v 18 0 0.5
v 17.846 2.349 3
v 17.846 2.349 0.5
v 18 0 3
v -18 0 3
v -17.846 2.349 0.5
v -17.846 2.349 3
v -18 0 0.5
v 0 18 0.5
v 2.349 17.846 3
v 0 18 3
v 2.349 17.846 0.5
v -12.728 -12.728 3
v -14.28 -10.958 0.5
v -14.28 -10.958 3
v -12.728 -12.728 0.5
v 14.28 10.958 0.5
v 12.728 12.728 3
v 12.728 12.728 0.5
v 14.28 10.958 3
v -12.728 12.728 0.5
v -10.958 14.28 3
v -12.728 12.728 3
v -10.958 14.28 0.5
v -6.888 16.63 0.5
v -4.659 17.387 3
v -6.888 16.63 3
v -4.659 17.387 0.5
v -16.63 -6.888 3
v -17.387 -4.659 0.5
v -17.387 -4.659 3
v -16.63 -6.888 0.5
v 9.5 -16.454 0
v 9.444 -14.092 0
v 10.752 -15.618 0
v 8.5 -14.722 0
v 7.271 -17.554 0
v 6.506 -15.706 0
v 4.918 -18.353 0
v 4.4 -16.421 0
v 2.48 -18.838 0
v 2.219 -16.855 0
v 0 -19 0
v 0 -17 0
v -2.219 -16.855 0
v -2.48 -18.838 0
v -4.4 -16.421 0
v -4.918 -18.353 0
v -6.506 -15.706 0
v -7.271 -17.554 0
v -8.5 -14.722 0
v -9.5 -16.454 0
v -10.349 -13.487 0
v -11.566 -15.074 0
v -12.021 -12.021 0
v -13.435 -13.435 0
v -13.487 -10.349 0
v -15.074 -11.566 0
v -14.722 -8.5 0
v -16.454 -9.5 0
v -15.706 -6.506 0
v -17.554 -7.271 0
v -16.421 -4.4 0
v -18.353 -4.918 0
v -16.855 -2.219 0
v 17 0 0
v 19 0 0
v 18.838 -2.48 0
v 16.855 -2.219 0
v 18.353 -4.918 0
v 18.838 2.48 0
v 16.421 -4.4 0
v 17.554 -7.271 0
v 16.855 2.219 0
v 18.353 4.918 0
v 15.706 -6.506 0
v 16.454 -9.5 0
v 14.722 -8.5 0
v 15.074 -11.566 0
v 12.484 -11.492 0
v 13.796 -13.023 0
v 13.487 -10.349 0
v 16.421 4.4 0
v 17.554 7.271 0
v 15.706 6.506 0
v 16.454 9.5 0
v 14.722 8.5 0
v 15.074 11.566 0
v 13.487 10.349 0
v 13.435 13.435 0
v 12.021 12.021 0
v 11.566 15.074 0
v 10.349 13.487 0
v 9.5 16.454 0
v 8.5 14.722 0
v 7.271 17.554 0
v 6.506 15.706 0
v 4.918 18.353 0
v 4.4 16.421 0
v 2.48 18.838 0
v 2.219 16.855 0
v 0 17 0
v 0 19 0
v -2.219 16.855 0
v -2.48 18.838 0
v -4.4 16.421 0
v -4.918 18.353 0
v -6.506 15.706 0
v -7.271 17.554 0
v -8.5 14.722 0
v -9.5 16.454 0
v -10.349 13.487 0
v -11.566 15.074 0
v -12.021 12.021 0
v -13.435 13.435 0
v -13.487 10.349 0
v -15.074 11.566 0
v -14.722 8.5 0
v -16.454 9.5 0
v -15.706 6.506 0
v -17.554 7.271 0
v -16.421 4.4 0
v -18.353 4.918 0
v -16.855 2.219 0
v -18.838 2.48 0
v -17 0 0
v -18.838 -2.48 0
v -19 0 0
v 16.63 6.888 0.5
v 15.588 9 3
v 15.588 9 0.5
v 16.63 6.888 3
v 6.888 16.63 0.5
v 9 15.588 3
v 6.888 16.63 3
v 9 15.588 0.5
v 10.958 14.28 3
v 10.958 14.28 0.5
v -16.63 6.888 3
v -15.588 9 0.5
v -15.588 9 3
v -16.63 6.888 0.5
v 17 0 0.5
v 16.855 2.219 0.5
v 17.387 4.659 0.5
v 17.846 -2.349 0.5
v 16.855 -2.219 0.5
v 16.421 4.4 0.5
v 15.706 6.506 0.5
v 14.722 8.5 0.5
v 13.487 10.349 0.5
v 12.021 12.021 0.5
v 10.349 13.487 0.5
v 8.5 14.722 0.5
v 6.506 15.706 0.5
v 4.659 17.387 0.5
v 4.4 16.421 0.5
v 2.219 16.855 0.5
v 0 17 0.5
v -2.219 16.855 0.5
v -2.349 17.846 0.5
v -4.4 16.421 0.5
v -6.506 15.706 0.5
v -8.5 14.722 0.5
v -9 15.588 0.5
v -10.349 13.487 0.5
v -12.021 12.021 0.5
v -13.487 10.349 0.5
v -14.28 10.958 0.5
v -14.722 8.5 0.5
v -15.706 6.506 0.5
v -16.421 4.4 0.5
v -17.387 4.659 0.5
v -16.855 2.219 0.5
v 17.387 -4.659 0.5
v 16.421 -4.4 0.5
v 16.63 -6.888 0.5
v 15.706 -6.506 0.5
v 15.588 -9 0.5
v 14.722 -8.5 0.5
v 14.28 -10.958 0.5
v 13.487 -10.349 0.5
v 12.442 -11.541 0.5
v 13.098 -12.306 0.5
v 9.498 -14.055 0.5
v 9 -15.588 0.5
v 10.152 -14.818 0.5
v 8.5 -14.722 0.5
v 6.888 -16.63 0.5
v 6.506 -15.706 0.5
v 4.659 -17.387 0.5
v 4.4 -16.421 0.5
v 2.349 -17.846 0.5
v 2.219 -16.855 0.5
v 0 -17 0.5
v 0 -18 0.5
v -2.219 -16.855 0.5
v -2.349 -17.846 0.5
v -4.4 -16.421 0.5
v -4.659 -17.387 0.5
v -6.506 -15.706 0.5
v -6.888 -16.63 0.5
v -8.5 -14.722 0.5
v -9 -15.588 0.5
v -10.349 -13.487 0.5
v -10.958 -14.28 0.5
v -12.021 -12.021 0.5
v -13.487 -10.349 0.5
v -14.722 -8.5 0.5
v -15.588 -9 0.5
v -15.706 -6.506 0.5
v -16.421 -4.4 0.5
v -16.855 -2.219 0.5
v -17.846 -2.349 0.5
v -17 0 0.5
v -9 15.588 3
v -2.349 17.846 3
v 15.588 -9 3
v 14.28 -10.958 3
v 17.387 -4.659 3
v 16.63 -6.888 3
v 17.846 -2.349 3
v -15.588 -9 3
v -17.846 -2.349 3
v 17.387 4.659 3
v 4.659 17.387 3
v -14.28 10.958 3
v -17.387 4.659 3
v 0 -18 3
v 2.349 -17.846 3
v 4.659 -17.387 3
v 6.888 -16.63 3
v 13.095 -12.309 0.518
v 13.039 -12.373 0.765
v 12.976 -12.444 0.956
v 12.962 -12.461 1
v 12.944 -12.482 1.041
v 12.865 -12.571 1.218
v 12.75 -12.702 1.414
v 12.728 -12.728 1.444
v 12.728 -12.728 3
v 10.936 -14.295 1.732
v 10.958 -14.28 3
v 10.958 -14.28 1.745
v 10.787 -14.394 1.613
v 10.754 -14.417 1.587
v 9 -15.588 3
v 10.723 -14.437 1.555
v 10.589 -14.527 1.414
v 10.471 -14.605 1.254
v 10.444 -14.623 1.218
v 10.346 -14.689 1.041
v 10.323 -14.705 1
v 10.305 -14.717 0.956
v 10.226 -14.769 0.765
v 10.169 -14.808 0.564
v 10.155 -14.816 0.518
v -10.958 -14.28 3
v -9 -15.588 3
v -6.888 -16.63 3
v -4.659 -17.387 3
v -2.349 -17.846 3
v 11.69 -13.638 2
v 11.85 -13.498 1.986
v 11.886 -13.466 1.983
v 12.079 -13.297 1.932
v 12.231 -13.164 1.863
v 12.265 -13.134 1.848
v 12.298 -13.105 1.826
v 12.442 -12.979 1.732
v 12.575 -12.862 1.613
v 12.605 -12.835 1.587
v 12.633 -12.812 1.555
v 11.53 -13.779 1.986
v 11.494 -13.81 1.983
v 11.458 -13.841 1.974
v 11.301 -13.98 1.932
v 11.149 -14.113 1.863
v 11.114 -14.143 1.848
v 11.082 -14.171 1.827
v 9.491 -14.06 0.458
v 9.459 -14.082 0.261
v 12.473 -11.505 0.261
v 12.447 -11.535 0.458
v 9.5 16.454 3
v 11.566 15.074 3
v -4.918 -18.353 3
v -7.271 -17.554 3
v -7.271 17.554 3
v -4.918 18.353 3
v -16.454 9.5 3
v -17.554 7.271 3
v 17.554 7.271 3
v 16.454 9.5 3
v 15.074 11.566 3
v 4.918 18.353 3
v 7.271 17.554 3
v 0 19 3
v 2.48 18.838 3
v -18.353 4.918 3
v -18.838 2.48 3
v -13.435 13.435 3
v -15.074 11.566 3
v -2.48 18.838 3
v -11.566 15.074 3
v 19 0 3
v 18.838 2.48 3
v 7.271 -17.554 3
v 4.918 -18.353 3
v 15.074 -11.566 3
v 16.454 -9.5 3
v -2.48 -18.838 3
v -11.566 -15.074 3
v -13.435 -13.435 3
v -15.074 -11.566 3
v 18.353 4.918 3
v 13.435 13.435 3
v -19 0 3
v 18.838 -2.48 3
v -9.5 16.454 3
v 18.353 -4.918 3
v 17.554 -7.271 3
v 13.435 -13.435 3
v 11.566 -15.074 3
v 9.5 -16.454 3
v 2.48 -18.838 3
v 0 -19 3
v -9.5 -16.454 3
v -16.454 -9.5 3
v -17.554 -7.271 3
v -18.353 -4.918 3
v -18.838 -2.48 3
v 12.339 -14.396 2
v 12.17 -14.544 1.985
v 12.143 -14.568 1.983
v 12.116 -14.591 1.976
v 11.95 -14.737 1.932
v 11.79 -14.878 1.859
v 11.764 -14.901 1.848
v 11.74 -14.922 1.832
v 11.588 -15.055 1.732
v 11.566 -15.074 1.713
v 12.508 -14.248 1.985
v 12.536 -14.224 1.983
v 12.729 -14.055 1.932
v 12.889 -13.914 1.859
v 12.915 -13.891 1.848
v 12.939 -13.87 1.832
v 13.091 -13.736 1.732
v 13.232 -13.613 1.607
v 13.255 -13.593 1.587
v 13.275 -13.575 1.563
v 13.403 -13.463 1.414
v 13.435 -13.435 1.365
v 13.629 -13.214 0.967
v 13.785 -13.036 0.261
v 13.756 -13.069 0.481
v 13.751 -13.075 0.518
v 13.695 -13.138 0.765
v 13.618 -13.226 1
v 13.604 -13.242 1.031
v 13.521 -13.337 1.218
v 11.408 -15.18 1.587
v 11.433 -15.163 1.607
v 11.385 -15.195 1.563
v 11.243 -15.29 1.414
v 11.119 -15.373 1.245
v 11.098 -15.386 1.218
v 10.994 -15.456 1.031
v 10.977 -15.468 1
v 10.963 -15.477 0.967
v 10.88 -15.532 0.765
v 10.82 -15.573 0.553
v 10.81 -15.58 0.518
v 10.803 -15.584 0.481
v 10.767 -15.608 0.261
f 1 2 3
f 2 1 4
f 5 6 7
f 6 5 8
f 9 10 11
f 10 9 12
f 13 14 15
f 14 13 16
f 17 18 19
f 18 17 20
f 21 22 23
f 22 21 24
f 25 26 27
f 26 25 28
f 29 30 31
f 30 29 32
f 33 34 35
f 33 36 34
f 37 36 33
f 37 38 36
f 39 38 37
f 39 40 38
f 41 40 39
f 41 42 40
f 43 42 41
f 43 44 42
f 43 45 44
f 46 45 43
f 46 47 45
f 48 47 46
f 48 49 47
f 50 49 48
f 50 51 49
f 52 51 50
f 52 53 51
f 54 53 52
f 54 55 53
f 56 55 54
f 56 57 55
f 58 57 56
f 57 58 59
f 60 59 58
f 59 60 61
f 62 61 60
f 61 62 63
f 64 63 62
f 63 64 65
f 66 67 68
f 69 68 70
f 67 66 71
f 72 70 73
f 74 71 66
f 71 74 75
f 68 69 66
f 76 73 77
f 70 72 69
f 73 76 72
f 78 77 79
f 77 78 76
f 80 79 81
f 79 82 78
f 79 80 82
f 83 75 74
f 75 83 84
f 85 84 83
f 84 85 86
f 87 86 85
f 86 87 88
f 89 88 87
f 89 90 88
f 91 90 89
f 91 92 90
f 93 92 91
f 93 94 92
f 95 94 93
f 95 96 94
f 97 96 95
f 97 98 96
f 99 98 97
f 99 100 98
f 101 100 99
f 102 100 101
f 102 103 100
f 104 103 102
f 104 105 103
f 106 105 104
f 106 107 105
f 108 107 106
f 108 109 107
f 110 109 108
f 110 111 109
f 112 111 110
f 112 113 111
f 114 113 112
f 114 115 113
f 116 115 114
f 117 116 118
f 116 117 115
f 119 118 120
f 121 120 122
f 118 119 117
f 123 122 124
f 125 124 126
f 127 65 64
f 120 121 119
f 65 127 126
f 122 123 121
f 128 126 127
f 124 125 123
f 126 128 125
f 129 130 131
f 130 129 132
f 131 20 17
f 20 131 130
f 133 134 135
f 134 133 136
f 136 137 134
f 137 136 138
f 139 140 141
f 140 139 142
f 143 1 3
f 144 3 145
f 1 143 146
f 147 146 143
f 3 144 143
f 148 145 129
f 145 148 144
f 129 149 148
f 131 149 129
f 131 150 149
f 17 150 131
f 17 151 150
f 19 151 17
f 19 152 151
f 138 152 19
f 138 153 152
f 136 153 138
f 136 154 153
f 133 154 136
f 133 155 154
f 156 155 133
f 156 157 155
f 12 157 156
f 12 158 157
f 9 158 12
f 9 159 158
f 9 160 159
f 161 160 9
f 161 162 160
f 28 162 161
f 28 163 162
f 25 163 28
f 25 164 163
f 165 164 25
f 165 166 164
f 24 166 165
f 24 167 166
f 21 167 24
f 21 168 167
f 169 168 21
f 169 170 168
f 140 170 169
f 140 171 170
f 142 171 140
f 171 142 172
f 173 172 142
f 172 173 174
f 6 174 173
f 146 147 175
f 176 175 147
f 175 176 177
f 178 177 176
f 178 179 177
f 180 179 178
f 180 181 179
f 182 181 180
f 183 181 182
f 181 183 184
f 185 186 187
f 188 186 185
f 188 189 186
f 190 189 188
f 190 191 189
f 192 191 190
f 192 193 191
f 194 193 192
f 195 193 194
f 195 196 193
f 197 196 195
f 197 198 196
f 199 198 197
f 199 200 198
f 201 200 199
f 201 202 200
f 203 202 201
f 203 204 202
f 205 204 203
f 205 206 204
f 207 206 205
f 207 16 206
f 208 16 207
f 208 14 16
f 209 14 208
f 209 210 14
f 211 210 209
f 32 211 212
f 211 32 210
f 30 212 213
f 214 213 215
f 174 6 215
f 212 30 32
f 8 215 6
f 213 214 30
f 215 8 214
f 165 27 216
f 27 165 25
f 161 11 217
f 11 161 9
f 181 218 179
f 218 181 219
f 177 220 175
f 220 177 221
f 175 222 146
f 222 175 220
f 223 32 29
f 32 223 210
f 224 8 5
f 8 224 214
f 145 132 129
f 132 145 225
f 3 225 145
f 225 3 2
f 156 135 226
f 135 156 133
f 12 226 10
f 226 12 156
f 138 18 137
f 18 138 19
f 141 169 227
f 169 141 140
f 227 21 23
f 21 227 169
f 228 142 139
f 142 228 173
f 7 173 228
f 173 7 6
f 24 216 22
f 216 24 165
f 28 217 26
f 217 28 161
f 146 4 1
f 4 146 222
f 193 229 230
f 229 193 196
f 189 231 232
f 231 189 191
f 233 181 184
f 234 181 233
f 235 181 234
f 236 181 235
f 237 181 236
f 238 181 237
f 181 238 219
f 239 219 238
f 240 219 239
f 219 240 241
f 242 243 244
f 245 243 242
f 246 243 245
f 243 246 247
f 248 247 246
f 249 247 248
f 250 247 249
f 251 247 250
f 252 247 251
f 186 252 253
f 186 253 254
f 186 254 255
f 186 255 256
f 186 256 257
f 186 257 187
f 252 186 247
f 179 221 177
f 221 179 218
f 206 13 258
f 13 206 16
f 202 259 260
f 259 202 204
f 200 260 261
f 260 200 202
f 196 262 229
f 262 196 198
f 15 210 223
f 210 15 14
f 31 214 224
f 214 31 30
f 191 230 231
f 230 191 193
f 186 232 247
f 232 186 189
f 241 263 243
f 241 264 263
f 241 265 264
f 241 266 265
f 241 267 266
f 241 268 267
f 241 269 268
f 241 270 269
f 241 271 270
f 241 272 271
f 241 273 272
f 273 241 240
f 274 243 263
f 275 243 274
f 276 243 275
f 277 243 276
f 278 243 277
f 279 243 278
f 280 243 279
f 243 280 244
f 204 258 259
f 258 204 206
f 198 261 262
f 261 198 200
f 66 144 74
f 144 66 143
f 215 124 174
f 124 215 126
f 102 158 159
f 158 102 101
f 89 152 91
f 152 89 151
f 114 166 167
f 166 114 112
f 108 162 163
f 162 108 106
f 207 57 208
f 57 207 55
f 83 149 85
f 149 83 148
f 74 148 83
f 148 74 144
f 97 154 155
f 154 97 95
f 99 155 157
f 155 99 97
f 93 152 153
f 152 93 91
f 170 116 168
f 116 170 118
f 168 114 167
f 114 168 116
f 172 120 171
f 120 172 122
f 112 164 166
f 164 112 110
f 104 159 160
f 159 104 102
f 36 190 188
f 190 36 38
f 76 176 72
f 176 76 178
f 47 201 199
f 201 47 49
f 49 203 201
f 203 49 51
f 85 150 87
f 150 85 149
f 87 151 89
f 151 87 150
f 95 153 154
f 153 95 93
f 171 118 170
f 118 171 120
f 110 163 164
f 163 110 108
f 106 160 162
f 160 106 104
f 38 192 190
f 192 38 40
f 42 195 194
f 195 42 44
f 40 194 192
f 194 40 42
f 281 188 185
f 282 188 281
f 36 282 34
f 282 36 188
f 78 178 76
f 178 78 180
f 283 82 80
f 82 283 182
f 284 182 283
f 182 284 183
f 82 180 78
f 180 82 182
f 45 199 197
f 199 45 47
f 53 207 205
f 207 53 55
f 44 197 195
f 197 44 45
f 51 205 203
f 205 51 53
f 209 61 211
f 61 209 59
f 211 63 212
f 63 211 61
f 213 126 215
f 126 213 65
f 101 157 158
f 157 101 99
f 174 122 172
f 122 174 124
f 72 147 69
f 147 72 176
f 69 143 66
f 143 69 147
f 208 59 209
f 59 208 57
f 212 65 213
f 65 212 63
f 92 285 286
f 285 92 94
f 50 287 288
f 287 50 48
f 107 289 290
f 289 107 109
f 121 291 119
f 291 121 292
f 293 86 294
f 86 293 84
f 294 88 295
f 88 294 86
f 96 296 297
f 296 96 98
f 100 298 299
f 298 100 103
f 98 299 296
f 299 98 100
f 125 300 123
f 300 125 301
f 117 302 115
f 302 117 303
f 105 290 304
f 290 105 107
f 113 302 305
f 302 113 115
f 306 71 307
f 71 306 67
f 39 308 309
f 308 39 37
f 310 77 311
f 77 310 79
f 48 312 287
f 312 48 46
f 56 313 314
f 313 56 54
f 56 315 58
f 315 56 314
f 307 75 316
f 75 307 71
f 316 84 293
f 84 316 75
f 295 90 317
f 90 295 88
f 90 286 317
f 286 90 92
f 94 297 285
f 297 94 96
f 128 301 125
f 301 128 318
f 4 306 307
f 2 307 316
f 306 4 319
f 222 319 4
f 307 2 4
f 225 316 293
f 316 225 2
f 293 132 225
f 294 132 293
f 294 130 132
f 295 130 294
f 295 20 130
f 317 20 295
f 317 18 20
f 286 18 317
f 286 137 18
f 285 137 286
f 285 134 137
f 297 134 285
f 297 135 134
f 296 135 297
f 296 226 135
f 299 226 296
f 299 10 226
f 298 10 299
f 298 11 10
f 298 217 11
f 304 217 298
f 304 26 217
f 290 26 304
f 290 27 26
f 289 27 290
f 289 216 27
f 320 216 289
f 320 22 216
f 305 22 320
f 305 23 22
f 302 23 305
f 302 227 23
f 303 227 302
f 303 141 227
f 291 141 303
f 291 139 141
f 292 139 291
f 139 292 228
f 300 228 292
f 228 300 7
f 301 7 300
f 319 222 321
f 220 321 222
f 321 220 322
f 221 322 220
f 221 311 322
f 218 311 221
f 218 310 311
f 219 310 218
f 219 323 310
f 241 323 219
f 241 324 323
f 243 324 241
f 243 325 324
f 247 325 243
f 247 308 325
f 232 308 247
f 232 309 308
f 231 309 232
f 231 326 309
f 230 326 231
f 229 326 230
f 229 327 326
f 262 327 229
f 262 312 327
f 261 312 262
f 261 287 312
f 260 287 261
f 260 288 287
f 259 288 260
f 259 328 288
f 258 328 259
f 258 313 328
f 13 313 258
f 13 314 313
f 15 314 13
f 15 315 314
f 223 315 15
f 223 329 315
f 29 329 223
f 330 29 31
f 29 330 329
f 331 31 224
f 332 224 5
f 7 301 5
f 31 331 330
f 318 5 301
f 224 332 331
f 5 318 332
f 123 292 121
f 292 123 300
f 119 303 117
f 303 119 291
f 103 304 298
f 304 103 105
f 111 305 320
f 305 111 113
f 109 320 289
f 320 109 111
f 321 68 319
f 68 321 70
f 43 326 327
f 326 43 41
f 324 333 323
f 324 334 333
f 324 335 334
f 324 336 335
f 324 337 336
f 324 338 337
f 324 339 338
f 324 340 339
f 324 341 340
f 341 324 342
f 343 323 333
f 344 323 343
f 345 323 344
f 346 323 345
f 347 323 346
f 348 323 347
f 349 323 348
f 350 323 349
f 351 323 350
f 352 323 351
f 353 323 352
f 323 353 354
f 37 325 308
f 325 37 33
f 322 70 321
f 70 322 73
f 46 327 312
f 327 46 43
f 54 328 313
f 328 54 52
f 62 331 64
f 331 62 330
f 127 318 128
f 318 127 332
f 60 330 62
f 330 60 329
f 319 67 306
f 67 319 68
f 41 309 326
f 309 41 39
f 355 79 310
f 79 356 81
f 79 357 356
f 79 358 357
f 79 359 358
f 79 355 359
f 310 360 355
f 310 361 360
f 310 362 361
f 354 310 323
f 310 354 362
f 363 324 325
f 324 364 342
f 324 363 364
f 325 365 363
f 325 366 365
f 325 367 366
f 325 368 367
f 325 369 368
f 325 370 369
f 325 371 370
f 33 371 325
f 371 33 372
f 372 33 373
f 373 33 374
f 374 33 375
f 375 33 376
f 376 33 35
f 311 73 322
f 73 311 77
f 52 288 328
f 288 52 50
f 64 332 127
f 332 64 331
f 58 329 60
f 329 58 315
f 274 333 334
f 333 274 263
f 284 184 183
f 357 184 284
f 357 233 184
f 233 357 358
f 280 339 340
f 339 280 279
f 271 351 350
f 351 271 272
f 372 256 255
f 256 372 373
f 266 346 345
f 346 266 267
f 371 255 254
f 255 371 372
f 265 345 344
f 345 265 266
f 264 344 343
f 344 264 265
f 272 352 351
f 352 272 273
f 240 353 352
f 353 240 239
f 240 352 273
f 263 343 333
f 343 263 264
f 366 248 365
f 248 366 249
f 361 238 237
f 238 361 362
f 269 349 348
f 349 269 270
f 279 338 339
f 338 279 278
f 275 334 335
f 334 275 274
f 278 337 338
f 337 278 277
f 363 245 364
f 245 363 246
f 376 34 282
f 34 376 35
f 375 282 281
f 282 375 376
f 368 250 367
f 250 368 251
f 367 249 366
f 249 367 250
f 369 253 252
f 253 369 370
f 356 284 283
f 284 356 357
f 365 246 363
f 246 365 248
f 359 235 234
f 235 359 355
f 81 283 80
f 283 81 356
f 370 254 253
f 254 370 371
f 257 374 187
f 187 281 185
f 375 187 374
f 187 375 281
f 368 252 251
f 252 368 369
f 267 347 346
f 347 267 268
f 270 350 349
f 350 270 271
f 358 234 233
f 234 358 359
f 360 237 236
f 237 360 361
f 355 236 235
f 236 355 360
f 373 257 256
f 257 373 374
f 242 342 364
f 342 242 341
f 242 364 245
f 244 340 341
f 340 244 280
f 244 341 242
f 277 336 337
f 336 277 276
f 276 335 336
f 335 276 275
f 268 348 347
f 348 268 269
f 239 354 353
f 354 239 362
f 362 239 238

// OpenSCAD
// file: ../build_environments.scad
// build_environments.scad: modules to build level sections
//

module pool(diameter=10.0, wall_height=2.0, step_width=3.0, connections=[])
{
    difference() {
        union() {
        difference() {
            cylinder(h=0.5,r1=diameter+step_width,r2=diameter+step_width,$fn=48);
            translate([0,0,-0.1])
                cylinder(h=0.7,r1=diameter,r2=diameter,$fn=48);
        }
        difference() {
            cylinder(h=wall_height,r1=diameter+step_width+1.0,r2=diameter+step_width+1.0,$fn=48);
            translate([0,0,-0.1])
                cylinder(h=wall_height+0.2,r1=diameter+step_width,r2=diameter+step_width,$fn=48);
        }
        }
    
        for (c = connections)
        {
            rotate([0,90,0]) {
                angle = atan2(c[1],c[0]);
                rotate([-angle,0,0]) {
                    cylinder(h=diameter+5.0,r1=c[2],r2=c[2],$fn=48);
                }
            }
        }
    }
}

module straight(length=10.0, width=2.0, dy1=0.0, dy2=0.0, dz=0.0)
{
    dims = [0, 0, 0, 0, 0, (dz/length)];
    matrix = [
        [ 1, dims[0], dims[1], 0 ],
        [ dims[2], 1, dims[4], 0 ],
        [ dims[5], dims[3], 1, 0 ],
        [ 0, 0, 0, 1 ]
    ];
    multmatrix(matrix)
    difference() {
        translate([dy1,0,0])
        union() {
            rotate([0,90,0]) {
                difference() {
                    cylinder(h=(length-dy1-dy2),r1=width+1.0,r2=width+1.0,$fn=24);
                    translate([0,0,-0.1])
                        cylinder(h=(length-dy1-dy2+0.2),r1=width,r2=width,$fn=24);
                }
                difference() {
                    cylinder(h=1.0,r1=width+2.0,r2=width+2.0,$fn=24);
                    translate([0,0,-0.1])
                        cylinder(h=1.2,r1=width,r2=width,$fn=24);
                }
                translate([0,0,(length-dy1-dy2)-1.0]) {
                    difference() {
                        cylinder(h=1.0,r1=width+2.0,r2=width+2.0,$fn=24);
                        translate([0,0,-0.1])
                            cylinder(h=1.2,r1=width,r2=width,$fn=24);
                    }
                }
            }
        }
        translate([0,0,-(2*width+4.0)/2])
            cube([3*length,3*length,2*width+4.0],center=true);
    }
}

module curve(p0=[0,0], center=[0,0], dir=1, angle=0.0, width=2.0)
{
    radius = sqrt((p0[0]-center[0])*(p0[0]-center[0]) + (p0[1]-center[1])*(p0[1]-center[1]));
    if (dir == 0) {
        difference() {
            rotate([0,0,-90])
            difference() {
                rotate_extrude(angle = angle, convexity = 10, $fn=32)
                    translate([radius, 0, 0])
                        circle(r = width+1.0,$fn=24);
                rotate([0,0,-1.0])
                    rotate_extrude(angle = angle+2.0, convexity = 10, $fn=32)
                        translate([radius, 0, 0])
                            circle(r = width,$fn=24);
            }
            translate([0,0,-(2*width+4.0)/2])
                cube([5*radius,5*radius,2*width+4.0],center=true);
        }
    }
    else {
        difference() {
            rotate([0,0,90])
            difference() {
                rotate_extrude(angle = -angle, convexity = 10, $fn=32)
                    translate([radius, 0, 0])
                        circle(r = width+1.0,$fn=24);
                rotate([0,0,1.0])
                    rotate_extrude(angle = -angle-2.0, convexity = 10, $fn=32)
                        translate([radius, 0, 0])
                            circle(r = width,$fn=24);
            }
            translate([0,0,-(2*width+4.0)/2])
                cube([5*radius,5*radius,2*width+4.0],center=true);
        }
    }

}

// test pool
//pool(diameter=12.0000, wall_height=3.0000, step_width=3.0000, connections=[[0.0000,-26.0000,2.0000], [23.6074,0.0000,2.0000]]);

// test straight, slope
//straight(length=26.0000, width=2.0000, dy1=11.8322, dy2=6.7082, dz=0.0000);
//straight(length=29.1549, width=12.0000, dy1=0.0000, dy2=0.0000, dz=-15.0000);

// test curve
//curve(p0=[23.6074, 0.0000], center=[23.6074, 5.0000], dir=0, angle=60.1011, width=2.0000);
//curve(p0=[33.6426, 12.4219], center=[37.9771, 9.9295], dir=1, angle=120.4627, width=2.0000);
// main file
use <../build_environments.scad>;
pool(diameter=17.0000, wall_height=3.0000, step_width=1.0000, connections=[[24.0000,-28.0000,2.0000]]);
